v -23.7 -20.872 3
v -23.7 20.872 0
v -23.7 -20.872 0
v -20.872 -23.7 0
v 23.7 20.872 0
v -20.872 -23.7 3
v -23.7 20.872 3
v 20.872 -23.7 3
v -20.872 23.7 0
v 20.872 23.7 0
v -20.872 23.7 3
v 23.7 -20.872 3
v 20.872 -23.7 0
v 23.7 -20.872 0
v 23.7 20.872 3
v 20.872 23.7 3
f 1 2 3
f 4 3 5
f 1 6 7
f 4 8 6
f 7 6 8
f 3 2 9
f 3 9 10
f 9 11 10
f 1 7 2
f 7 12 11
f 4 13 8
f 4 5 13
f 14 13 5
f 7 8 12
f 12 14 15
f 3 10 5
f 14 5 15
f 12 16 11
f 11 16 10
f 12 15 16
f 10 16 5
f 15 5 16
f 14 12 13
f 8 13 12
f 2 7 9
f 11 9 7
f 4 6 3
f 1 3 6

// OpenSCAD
// file: Inlet.scad
$fn = 100;
tiny = 0.01;


/******************************************************
 * dx,dy: Maße, wie bei 'Boden' angegeben.
 *****************************************************/
module inlet_top_down(dx,dy) {
  h1 = 3;  
  dx1 = 6.3;
  dx2 = 4.0; // vier mal Fase an Ecken

  difference() {
     translate([0,0,h1/2]) cube([dx-2*dx1,dy-2*dx1,h1], true); 
     translate([+dx/2-dx1,+dy/2-dx1,h1/2-tiny]) rotate([0,0,45]) cube([dx2,dx2,h1+3*tiny], true);
     translate([+dx/2-dx1,-dy/2+dx1,h1/2-tiny]) rotate([0,0,45]) cube([dx2,dx2,h1+3*tiny], true);
     translate([-dx/2+dx1,+dy/2-dx1,h1/2-tiny]) rotate([0,0,45]) cube([dx2,dx2,h1+3*tiny], true);
     translate([-dx/2+dx1,-dy/2+dx1,h1/2-tiny]) rotate([0,0,45]) cube([dx2,dx2,h1+3*tiny], true);
     }
}
// main file
$fn = 100;
tiny = 0.01;

use <Inlet.scad>

inlet_top_down(60,60);
